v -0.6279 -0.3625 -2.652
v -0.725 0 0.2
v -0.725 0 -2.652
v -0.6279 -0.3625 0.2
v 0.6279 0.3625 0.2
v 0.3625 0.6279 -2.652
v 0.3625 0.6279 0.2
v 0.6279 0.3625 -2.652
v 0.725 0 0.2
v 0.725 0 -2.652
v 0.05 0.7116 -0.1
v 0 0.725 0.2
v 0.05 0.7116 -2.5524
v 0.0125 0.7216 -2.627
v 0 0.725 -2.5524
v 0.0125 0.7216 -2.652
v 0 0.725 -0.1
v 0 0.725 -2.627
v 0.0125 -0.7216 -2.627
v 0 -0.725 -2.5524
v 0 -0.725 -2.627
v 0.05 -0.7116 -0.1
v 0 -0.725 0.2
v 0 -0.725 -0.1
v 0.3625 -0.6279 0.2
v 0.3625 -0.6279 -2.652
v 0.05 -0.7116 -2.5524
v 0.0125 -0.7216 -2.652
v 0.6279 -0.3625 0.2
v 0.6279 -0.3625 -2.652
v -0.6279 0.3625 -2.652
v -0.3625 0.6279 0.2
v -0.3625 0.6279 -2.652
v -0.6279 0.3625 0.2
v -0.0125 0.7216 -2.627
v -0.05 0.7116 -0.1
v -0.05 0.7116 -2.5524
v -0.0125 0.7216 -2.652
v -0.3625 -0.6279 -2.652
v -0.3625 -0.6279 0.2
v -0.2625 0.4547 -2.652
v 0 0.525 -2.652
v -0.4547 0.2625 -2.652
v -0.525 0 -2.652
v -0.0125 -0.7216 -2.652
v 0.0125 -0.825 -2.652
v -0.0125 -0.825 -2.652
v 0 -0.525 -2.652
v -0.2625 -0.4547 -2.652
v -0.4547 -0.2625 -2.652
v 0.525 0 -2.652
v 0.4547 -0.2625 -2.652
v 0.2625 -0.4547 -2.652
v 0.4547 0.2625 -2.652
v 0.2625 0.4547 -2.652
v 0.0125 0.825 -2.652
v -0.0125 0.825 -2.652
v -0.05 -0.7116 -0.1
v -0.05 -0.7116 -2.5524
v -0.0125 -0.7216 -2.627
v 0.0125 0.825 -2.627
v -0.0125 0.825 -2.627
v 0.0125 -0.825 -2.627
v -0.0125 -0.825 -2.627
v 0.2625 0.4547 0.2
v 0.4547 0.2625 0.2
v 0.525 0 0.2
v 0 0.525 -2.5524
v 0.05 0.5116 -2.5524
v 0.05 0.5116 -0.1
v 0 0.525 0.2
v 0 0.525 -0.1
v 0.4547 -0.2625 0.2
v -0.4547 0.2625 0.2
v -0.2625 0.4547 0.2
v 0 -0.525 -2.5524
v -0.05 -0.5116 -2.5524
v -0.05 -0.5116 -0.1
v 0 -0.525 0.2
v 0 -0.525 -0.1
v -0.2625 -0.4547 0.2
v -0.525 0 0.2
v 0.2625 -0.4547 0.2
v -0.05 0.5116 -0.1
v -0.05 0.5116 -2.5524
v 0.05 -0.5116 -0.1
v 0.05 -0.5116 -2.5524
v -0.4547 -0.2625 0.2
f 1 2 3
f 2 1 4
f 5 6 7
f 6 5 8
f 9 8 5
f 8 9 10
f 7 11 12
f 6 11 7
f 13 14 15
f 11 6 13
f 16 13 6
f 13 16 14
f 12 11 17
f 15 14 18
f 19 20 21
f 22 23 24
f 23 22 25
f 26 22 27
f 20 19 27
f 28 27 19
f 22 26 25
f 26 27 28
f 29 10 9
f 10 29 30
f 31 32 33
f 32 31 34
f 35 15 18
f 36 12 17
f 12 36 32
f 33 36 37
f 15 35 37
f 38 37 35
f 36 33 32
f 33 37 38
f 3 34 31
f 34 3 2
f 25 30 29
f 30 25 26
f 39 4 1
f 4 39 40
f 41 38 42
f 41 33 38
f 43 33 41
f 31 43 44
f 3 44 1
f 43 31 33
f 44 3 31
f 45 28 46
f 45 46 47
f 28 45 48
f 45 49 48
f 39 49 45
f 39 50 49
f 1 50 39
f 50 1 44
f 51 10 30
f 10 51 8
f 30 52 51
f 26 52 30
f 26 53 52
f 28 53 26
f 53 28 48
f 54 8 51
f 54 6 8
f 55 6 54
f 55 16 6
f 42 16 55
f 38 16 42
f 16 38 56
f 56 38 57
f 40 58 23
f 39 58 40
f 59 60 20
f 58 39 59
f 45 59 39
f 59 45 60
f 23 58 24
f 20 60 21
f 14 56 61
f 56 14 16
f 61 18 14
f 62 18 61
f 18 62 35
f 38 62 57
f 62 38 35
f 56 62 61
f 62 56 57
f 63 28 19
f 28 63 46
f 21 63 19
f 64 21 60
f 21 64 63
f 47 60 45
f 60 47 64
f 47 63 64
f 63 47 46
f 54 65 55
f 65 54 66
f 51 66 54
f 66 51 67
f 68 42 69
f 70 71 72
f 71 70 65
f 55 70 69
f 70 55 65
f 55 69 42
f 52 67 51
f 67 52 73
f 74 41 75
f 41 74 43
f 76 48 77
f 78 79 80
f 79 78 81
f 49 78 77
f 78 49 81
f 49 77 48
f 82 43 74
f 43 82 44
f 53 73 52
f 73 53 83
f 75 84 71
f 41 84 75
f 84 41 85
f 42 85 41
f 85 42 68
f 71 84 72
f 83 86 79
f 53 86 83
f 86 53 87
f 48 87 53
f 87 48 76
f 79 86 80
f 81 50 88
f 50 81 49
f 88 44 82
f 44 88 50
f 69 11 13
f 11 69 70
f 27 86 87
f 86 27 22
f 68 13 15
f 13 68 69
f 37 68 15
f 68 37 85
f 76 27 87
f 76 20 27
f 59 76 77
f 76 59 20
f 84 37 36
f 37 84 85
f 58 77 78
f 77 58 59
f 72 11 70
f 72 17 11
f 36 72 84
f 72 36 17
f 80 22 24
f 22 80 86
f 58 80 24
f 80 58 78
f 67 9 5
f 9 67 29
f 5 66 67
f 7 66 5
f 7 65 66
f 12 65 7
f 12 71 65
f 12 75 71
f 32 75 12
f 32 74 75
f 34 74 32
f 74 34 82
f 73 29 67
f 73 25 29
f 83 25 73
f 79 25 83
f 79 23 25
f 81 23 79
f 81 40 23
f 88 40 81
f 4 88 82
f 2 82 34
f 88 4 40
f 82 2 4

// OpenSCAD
tolerance=0.075;
hole_radius=0.05;
grid_hole_radius=0.05;
outer_radius=1;
thickness=0.2;
hole_attach_height=0.05;
compressed_height=3.3134;
extended_height=5.8654;
next_hole_radius=0.05;
next_hole_attach_height=0.05;
next_inner=0.8;
hole_twist=89.9964;
//other params
eps = tolerance/100;
rail_attach_height = grid_hole_radius + hole_attach_height;
inner_radius = outer_radius - thickness;
rail_attach_width = rail_attach_height;
fn = 12;
fnh = 6;

module angled_cylinder(angle_deg_y, _h, _r, angle_deg_x = 0) {
    rotate([angle_deg_x, angle_deg_y, 0]) { // Rotate the cylinder 
            cylinder(h = _h, r = _r, center = true, $fn = fnh);
        }
}

module top_joint() {
    total_height = extended_height - compressed_height + rail_attach_height;
    difference() {
        union() {
            //outer cylinder
            cylinder(h=extended_height - compressed_height + rail_attach_height, r = inner_radius - tolerance, $fn = fn);
            
            //rail attachments
            translate([-(rail_attach_width - tolerance)/2,inner_radius - tolerance - thickness/2, 0])
            cube([rail_attach_width - tolerance, thickness, rail_attach_height - tolerance]);
            
            translate([-(rail_attach_width - tolerance)/2,-inner_radius + tolerance - thickness/2, 0])
            cube([rail_attach_width - tolerance, thickness, rail_attach_height - tolerance]);
            
        }
        //shell out inner cylinder
        translate([0,0,-eps/2])
        cylinder(h=extended_height - compressed_height + rail_attach_height + eps, r= inner_radius - tolerance - thickness, $fn = fn);
        
        translate([0,0,rail_attach_height + (extended_height - compressed_height)/2])
        cube([grid_hole_radius*2, inner_radius*2 + eps, extended_height - compressed_height + eps],center=true);
    }
    
    //to tie strings
//    difference() {
//        union() {
//            //loop for strings
//            translate([0, inner_radius - tolerance - grid_hole_radius - hole_attach_height,0])
//            cylinder(h=rail_attach_height - tolerance,r=grid_hole_radius + hole_attach_height,$fn=fnh);
//            
//            translate([0, -inner_radius + tolerance + grid_hole_radius + hole_attach_height,0])
//            cylinder(h=rail_attach_height - tolerance,r=grid_hole_radius + hole_attach_height,$fn=fnh);
//        }
//        
//        translate([0,0,-eps/2]) {
//            //hole for string loops
//        translate([0, inner_radius - tolerance - grid_hole_radius - hole_attach_height,0])
//            cylinder(h=rail_attach_height-tolerance + eps,r=grid_hole_radius,$fn=fnh);
//            
//        translate([0, -inner_radius + tolerance + grid_hole_radius + hole_attach_height,0])
//        cylinder(h=rail_attach_height - tolerance + eps,r=grid_hole_radius,$fn=fnh);
//        }
//    }
    
    
    //attachment segment
    attach_thickness = hole_attach_height;
    difference() {
        union() {
            //attachment for smaller cylinder
            translate([0,0,-attach_thickness*2 + total_height])
            cylinder(h=attach_thickness*2, r=inner_radius - tolerance, $fn=fn);
            translate([0,0,-attach_thickness*2 + total_height])
            cylinder(h=attach_thickness*2, r1=inner_radius - tolerance, r2=next_inner - tolerance - thickness, $fn=fn);
            
            translate([0,0,total_height])
            //small cylinder
            cylinder(h=next_hole_radius*2 + next_hole_attach_height * 2, r = next_inner - tolerance, $fn=fn);
        }
        
        //shelling
        translate([0,0, -attach_thickness*2 - eps/2 + total_height])
        cylinder(h=next_hole_radius*2 + next_hole_attach_height * 2 + attach_thickness*2 + eps, r = min(inner_radius, next_inner - tolerance - thickness), $fn=fn);
        
        //holes for screws
//        translate([0,0,next_hole_attach_height + next_hole_radius + total_height]) {
//            angled_cylinder(0, (next_inner + thickness + eps) * 2,  next_hole_radius, 90);
//            angled_cylinder(90, (next_inner + thickness + eps) * 2, next_hole_radius, 0);
//        }
    }
 
}

translate([0,0,-extended_height+compressed_height-rail_attach_height])
top_joint();
